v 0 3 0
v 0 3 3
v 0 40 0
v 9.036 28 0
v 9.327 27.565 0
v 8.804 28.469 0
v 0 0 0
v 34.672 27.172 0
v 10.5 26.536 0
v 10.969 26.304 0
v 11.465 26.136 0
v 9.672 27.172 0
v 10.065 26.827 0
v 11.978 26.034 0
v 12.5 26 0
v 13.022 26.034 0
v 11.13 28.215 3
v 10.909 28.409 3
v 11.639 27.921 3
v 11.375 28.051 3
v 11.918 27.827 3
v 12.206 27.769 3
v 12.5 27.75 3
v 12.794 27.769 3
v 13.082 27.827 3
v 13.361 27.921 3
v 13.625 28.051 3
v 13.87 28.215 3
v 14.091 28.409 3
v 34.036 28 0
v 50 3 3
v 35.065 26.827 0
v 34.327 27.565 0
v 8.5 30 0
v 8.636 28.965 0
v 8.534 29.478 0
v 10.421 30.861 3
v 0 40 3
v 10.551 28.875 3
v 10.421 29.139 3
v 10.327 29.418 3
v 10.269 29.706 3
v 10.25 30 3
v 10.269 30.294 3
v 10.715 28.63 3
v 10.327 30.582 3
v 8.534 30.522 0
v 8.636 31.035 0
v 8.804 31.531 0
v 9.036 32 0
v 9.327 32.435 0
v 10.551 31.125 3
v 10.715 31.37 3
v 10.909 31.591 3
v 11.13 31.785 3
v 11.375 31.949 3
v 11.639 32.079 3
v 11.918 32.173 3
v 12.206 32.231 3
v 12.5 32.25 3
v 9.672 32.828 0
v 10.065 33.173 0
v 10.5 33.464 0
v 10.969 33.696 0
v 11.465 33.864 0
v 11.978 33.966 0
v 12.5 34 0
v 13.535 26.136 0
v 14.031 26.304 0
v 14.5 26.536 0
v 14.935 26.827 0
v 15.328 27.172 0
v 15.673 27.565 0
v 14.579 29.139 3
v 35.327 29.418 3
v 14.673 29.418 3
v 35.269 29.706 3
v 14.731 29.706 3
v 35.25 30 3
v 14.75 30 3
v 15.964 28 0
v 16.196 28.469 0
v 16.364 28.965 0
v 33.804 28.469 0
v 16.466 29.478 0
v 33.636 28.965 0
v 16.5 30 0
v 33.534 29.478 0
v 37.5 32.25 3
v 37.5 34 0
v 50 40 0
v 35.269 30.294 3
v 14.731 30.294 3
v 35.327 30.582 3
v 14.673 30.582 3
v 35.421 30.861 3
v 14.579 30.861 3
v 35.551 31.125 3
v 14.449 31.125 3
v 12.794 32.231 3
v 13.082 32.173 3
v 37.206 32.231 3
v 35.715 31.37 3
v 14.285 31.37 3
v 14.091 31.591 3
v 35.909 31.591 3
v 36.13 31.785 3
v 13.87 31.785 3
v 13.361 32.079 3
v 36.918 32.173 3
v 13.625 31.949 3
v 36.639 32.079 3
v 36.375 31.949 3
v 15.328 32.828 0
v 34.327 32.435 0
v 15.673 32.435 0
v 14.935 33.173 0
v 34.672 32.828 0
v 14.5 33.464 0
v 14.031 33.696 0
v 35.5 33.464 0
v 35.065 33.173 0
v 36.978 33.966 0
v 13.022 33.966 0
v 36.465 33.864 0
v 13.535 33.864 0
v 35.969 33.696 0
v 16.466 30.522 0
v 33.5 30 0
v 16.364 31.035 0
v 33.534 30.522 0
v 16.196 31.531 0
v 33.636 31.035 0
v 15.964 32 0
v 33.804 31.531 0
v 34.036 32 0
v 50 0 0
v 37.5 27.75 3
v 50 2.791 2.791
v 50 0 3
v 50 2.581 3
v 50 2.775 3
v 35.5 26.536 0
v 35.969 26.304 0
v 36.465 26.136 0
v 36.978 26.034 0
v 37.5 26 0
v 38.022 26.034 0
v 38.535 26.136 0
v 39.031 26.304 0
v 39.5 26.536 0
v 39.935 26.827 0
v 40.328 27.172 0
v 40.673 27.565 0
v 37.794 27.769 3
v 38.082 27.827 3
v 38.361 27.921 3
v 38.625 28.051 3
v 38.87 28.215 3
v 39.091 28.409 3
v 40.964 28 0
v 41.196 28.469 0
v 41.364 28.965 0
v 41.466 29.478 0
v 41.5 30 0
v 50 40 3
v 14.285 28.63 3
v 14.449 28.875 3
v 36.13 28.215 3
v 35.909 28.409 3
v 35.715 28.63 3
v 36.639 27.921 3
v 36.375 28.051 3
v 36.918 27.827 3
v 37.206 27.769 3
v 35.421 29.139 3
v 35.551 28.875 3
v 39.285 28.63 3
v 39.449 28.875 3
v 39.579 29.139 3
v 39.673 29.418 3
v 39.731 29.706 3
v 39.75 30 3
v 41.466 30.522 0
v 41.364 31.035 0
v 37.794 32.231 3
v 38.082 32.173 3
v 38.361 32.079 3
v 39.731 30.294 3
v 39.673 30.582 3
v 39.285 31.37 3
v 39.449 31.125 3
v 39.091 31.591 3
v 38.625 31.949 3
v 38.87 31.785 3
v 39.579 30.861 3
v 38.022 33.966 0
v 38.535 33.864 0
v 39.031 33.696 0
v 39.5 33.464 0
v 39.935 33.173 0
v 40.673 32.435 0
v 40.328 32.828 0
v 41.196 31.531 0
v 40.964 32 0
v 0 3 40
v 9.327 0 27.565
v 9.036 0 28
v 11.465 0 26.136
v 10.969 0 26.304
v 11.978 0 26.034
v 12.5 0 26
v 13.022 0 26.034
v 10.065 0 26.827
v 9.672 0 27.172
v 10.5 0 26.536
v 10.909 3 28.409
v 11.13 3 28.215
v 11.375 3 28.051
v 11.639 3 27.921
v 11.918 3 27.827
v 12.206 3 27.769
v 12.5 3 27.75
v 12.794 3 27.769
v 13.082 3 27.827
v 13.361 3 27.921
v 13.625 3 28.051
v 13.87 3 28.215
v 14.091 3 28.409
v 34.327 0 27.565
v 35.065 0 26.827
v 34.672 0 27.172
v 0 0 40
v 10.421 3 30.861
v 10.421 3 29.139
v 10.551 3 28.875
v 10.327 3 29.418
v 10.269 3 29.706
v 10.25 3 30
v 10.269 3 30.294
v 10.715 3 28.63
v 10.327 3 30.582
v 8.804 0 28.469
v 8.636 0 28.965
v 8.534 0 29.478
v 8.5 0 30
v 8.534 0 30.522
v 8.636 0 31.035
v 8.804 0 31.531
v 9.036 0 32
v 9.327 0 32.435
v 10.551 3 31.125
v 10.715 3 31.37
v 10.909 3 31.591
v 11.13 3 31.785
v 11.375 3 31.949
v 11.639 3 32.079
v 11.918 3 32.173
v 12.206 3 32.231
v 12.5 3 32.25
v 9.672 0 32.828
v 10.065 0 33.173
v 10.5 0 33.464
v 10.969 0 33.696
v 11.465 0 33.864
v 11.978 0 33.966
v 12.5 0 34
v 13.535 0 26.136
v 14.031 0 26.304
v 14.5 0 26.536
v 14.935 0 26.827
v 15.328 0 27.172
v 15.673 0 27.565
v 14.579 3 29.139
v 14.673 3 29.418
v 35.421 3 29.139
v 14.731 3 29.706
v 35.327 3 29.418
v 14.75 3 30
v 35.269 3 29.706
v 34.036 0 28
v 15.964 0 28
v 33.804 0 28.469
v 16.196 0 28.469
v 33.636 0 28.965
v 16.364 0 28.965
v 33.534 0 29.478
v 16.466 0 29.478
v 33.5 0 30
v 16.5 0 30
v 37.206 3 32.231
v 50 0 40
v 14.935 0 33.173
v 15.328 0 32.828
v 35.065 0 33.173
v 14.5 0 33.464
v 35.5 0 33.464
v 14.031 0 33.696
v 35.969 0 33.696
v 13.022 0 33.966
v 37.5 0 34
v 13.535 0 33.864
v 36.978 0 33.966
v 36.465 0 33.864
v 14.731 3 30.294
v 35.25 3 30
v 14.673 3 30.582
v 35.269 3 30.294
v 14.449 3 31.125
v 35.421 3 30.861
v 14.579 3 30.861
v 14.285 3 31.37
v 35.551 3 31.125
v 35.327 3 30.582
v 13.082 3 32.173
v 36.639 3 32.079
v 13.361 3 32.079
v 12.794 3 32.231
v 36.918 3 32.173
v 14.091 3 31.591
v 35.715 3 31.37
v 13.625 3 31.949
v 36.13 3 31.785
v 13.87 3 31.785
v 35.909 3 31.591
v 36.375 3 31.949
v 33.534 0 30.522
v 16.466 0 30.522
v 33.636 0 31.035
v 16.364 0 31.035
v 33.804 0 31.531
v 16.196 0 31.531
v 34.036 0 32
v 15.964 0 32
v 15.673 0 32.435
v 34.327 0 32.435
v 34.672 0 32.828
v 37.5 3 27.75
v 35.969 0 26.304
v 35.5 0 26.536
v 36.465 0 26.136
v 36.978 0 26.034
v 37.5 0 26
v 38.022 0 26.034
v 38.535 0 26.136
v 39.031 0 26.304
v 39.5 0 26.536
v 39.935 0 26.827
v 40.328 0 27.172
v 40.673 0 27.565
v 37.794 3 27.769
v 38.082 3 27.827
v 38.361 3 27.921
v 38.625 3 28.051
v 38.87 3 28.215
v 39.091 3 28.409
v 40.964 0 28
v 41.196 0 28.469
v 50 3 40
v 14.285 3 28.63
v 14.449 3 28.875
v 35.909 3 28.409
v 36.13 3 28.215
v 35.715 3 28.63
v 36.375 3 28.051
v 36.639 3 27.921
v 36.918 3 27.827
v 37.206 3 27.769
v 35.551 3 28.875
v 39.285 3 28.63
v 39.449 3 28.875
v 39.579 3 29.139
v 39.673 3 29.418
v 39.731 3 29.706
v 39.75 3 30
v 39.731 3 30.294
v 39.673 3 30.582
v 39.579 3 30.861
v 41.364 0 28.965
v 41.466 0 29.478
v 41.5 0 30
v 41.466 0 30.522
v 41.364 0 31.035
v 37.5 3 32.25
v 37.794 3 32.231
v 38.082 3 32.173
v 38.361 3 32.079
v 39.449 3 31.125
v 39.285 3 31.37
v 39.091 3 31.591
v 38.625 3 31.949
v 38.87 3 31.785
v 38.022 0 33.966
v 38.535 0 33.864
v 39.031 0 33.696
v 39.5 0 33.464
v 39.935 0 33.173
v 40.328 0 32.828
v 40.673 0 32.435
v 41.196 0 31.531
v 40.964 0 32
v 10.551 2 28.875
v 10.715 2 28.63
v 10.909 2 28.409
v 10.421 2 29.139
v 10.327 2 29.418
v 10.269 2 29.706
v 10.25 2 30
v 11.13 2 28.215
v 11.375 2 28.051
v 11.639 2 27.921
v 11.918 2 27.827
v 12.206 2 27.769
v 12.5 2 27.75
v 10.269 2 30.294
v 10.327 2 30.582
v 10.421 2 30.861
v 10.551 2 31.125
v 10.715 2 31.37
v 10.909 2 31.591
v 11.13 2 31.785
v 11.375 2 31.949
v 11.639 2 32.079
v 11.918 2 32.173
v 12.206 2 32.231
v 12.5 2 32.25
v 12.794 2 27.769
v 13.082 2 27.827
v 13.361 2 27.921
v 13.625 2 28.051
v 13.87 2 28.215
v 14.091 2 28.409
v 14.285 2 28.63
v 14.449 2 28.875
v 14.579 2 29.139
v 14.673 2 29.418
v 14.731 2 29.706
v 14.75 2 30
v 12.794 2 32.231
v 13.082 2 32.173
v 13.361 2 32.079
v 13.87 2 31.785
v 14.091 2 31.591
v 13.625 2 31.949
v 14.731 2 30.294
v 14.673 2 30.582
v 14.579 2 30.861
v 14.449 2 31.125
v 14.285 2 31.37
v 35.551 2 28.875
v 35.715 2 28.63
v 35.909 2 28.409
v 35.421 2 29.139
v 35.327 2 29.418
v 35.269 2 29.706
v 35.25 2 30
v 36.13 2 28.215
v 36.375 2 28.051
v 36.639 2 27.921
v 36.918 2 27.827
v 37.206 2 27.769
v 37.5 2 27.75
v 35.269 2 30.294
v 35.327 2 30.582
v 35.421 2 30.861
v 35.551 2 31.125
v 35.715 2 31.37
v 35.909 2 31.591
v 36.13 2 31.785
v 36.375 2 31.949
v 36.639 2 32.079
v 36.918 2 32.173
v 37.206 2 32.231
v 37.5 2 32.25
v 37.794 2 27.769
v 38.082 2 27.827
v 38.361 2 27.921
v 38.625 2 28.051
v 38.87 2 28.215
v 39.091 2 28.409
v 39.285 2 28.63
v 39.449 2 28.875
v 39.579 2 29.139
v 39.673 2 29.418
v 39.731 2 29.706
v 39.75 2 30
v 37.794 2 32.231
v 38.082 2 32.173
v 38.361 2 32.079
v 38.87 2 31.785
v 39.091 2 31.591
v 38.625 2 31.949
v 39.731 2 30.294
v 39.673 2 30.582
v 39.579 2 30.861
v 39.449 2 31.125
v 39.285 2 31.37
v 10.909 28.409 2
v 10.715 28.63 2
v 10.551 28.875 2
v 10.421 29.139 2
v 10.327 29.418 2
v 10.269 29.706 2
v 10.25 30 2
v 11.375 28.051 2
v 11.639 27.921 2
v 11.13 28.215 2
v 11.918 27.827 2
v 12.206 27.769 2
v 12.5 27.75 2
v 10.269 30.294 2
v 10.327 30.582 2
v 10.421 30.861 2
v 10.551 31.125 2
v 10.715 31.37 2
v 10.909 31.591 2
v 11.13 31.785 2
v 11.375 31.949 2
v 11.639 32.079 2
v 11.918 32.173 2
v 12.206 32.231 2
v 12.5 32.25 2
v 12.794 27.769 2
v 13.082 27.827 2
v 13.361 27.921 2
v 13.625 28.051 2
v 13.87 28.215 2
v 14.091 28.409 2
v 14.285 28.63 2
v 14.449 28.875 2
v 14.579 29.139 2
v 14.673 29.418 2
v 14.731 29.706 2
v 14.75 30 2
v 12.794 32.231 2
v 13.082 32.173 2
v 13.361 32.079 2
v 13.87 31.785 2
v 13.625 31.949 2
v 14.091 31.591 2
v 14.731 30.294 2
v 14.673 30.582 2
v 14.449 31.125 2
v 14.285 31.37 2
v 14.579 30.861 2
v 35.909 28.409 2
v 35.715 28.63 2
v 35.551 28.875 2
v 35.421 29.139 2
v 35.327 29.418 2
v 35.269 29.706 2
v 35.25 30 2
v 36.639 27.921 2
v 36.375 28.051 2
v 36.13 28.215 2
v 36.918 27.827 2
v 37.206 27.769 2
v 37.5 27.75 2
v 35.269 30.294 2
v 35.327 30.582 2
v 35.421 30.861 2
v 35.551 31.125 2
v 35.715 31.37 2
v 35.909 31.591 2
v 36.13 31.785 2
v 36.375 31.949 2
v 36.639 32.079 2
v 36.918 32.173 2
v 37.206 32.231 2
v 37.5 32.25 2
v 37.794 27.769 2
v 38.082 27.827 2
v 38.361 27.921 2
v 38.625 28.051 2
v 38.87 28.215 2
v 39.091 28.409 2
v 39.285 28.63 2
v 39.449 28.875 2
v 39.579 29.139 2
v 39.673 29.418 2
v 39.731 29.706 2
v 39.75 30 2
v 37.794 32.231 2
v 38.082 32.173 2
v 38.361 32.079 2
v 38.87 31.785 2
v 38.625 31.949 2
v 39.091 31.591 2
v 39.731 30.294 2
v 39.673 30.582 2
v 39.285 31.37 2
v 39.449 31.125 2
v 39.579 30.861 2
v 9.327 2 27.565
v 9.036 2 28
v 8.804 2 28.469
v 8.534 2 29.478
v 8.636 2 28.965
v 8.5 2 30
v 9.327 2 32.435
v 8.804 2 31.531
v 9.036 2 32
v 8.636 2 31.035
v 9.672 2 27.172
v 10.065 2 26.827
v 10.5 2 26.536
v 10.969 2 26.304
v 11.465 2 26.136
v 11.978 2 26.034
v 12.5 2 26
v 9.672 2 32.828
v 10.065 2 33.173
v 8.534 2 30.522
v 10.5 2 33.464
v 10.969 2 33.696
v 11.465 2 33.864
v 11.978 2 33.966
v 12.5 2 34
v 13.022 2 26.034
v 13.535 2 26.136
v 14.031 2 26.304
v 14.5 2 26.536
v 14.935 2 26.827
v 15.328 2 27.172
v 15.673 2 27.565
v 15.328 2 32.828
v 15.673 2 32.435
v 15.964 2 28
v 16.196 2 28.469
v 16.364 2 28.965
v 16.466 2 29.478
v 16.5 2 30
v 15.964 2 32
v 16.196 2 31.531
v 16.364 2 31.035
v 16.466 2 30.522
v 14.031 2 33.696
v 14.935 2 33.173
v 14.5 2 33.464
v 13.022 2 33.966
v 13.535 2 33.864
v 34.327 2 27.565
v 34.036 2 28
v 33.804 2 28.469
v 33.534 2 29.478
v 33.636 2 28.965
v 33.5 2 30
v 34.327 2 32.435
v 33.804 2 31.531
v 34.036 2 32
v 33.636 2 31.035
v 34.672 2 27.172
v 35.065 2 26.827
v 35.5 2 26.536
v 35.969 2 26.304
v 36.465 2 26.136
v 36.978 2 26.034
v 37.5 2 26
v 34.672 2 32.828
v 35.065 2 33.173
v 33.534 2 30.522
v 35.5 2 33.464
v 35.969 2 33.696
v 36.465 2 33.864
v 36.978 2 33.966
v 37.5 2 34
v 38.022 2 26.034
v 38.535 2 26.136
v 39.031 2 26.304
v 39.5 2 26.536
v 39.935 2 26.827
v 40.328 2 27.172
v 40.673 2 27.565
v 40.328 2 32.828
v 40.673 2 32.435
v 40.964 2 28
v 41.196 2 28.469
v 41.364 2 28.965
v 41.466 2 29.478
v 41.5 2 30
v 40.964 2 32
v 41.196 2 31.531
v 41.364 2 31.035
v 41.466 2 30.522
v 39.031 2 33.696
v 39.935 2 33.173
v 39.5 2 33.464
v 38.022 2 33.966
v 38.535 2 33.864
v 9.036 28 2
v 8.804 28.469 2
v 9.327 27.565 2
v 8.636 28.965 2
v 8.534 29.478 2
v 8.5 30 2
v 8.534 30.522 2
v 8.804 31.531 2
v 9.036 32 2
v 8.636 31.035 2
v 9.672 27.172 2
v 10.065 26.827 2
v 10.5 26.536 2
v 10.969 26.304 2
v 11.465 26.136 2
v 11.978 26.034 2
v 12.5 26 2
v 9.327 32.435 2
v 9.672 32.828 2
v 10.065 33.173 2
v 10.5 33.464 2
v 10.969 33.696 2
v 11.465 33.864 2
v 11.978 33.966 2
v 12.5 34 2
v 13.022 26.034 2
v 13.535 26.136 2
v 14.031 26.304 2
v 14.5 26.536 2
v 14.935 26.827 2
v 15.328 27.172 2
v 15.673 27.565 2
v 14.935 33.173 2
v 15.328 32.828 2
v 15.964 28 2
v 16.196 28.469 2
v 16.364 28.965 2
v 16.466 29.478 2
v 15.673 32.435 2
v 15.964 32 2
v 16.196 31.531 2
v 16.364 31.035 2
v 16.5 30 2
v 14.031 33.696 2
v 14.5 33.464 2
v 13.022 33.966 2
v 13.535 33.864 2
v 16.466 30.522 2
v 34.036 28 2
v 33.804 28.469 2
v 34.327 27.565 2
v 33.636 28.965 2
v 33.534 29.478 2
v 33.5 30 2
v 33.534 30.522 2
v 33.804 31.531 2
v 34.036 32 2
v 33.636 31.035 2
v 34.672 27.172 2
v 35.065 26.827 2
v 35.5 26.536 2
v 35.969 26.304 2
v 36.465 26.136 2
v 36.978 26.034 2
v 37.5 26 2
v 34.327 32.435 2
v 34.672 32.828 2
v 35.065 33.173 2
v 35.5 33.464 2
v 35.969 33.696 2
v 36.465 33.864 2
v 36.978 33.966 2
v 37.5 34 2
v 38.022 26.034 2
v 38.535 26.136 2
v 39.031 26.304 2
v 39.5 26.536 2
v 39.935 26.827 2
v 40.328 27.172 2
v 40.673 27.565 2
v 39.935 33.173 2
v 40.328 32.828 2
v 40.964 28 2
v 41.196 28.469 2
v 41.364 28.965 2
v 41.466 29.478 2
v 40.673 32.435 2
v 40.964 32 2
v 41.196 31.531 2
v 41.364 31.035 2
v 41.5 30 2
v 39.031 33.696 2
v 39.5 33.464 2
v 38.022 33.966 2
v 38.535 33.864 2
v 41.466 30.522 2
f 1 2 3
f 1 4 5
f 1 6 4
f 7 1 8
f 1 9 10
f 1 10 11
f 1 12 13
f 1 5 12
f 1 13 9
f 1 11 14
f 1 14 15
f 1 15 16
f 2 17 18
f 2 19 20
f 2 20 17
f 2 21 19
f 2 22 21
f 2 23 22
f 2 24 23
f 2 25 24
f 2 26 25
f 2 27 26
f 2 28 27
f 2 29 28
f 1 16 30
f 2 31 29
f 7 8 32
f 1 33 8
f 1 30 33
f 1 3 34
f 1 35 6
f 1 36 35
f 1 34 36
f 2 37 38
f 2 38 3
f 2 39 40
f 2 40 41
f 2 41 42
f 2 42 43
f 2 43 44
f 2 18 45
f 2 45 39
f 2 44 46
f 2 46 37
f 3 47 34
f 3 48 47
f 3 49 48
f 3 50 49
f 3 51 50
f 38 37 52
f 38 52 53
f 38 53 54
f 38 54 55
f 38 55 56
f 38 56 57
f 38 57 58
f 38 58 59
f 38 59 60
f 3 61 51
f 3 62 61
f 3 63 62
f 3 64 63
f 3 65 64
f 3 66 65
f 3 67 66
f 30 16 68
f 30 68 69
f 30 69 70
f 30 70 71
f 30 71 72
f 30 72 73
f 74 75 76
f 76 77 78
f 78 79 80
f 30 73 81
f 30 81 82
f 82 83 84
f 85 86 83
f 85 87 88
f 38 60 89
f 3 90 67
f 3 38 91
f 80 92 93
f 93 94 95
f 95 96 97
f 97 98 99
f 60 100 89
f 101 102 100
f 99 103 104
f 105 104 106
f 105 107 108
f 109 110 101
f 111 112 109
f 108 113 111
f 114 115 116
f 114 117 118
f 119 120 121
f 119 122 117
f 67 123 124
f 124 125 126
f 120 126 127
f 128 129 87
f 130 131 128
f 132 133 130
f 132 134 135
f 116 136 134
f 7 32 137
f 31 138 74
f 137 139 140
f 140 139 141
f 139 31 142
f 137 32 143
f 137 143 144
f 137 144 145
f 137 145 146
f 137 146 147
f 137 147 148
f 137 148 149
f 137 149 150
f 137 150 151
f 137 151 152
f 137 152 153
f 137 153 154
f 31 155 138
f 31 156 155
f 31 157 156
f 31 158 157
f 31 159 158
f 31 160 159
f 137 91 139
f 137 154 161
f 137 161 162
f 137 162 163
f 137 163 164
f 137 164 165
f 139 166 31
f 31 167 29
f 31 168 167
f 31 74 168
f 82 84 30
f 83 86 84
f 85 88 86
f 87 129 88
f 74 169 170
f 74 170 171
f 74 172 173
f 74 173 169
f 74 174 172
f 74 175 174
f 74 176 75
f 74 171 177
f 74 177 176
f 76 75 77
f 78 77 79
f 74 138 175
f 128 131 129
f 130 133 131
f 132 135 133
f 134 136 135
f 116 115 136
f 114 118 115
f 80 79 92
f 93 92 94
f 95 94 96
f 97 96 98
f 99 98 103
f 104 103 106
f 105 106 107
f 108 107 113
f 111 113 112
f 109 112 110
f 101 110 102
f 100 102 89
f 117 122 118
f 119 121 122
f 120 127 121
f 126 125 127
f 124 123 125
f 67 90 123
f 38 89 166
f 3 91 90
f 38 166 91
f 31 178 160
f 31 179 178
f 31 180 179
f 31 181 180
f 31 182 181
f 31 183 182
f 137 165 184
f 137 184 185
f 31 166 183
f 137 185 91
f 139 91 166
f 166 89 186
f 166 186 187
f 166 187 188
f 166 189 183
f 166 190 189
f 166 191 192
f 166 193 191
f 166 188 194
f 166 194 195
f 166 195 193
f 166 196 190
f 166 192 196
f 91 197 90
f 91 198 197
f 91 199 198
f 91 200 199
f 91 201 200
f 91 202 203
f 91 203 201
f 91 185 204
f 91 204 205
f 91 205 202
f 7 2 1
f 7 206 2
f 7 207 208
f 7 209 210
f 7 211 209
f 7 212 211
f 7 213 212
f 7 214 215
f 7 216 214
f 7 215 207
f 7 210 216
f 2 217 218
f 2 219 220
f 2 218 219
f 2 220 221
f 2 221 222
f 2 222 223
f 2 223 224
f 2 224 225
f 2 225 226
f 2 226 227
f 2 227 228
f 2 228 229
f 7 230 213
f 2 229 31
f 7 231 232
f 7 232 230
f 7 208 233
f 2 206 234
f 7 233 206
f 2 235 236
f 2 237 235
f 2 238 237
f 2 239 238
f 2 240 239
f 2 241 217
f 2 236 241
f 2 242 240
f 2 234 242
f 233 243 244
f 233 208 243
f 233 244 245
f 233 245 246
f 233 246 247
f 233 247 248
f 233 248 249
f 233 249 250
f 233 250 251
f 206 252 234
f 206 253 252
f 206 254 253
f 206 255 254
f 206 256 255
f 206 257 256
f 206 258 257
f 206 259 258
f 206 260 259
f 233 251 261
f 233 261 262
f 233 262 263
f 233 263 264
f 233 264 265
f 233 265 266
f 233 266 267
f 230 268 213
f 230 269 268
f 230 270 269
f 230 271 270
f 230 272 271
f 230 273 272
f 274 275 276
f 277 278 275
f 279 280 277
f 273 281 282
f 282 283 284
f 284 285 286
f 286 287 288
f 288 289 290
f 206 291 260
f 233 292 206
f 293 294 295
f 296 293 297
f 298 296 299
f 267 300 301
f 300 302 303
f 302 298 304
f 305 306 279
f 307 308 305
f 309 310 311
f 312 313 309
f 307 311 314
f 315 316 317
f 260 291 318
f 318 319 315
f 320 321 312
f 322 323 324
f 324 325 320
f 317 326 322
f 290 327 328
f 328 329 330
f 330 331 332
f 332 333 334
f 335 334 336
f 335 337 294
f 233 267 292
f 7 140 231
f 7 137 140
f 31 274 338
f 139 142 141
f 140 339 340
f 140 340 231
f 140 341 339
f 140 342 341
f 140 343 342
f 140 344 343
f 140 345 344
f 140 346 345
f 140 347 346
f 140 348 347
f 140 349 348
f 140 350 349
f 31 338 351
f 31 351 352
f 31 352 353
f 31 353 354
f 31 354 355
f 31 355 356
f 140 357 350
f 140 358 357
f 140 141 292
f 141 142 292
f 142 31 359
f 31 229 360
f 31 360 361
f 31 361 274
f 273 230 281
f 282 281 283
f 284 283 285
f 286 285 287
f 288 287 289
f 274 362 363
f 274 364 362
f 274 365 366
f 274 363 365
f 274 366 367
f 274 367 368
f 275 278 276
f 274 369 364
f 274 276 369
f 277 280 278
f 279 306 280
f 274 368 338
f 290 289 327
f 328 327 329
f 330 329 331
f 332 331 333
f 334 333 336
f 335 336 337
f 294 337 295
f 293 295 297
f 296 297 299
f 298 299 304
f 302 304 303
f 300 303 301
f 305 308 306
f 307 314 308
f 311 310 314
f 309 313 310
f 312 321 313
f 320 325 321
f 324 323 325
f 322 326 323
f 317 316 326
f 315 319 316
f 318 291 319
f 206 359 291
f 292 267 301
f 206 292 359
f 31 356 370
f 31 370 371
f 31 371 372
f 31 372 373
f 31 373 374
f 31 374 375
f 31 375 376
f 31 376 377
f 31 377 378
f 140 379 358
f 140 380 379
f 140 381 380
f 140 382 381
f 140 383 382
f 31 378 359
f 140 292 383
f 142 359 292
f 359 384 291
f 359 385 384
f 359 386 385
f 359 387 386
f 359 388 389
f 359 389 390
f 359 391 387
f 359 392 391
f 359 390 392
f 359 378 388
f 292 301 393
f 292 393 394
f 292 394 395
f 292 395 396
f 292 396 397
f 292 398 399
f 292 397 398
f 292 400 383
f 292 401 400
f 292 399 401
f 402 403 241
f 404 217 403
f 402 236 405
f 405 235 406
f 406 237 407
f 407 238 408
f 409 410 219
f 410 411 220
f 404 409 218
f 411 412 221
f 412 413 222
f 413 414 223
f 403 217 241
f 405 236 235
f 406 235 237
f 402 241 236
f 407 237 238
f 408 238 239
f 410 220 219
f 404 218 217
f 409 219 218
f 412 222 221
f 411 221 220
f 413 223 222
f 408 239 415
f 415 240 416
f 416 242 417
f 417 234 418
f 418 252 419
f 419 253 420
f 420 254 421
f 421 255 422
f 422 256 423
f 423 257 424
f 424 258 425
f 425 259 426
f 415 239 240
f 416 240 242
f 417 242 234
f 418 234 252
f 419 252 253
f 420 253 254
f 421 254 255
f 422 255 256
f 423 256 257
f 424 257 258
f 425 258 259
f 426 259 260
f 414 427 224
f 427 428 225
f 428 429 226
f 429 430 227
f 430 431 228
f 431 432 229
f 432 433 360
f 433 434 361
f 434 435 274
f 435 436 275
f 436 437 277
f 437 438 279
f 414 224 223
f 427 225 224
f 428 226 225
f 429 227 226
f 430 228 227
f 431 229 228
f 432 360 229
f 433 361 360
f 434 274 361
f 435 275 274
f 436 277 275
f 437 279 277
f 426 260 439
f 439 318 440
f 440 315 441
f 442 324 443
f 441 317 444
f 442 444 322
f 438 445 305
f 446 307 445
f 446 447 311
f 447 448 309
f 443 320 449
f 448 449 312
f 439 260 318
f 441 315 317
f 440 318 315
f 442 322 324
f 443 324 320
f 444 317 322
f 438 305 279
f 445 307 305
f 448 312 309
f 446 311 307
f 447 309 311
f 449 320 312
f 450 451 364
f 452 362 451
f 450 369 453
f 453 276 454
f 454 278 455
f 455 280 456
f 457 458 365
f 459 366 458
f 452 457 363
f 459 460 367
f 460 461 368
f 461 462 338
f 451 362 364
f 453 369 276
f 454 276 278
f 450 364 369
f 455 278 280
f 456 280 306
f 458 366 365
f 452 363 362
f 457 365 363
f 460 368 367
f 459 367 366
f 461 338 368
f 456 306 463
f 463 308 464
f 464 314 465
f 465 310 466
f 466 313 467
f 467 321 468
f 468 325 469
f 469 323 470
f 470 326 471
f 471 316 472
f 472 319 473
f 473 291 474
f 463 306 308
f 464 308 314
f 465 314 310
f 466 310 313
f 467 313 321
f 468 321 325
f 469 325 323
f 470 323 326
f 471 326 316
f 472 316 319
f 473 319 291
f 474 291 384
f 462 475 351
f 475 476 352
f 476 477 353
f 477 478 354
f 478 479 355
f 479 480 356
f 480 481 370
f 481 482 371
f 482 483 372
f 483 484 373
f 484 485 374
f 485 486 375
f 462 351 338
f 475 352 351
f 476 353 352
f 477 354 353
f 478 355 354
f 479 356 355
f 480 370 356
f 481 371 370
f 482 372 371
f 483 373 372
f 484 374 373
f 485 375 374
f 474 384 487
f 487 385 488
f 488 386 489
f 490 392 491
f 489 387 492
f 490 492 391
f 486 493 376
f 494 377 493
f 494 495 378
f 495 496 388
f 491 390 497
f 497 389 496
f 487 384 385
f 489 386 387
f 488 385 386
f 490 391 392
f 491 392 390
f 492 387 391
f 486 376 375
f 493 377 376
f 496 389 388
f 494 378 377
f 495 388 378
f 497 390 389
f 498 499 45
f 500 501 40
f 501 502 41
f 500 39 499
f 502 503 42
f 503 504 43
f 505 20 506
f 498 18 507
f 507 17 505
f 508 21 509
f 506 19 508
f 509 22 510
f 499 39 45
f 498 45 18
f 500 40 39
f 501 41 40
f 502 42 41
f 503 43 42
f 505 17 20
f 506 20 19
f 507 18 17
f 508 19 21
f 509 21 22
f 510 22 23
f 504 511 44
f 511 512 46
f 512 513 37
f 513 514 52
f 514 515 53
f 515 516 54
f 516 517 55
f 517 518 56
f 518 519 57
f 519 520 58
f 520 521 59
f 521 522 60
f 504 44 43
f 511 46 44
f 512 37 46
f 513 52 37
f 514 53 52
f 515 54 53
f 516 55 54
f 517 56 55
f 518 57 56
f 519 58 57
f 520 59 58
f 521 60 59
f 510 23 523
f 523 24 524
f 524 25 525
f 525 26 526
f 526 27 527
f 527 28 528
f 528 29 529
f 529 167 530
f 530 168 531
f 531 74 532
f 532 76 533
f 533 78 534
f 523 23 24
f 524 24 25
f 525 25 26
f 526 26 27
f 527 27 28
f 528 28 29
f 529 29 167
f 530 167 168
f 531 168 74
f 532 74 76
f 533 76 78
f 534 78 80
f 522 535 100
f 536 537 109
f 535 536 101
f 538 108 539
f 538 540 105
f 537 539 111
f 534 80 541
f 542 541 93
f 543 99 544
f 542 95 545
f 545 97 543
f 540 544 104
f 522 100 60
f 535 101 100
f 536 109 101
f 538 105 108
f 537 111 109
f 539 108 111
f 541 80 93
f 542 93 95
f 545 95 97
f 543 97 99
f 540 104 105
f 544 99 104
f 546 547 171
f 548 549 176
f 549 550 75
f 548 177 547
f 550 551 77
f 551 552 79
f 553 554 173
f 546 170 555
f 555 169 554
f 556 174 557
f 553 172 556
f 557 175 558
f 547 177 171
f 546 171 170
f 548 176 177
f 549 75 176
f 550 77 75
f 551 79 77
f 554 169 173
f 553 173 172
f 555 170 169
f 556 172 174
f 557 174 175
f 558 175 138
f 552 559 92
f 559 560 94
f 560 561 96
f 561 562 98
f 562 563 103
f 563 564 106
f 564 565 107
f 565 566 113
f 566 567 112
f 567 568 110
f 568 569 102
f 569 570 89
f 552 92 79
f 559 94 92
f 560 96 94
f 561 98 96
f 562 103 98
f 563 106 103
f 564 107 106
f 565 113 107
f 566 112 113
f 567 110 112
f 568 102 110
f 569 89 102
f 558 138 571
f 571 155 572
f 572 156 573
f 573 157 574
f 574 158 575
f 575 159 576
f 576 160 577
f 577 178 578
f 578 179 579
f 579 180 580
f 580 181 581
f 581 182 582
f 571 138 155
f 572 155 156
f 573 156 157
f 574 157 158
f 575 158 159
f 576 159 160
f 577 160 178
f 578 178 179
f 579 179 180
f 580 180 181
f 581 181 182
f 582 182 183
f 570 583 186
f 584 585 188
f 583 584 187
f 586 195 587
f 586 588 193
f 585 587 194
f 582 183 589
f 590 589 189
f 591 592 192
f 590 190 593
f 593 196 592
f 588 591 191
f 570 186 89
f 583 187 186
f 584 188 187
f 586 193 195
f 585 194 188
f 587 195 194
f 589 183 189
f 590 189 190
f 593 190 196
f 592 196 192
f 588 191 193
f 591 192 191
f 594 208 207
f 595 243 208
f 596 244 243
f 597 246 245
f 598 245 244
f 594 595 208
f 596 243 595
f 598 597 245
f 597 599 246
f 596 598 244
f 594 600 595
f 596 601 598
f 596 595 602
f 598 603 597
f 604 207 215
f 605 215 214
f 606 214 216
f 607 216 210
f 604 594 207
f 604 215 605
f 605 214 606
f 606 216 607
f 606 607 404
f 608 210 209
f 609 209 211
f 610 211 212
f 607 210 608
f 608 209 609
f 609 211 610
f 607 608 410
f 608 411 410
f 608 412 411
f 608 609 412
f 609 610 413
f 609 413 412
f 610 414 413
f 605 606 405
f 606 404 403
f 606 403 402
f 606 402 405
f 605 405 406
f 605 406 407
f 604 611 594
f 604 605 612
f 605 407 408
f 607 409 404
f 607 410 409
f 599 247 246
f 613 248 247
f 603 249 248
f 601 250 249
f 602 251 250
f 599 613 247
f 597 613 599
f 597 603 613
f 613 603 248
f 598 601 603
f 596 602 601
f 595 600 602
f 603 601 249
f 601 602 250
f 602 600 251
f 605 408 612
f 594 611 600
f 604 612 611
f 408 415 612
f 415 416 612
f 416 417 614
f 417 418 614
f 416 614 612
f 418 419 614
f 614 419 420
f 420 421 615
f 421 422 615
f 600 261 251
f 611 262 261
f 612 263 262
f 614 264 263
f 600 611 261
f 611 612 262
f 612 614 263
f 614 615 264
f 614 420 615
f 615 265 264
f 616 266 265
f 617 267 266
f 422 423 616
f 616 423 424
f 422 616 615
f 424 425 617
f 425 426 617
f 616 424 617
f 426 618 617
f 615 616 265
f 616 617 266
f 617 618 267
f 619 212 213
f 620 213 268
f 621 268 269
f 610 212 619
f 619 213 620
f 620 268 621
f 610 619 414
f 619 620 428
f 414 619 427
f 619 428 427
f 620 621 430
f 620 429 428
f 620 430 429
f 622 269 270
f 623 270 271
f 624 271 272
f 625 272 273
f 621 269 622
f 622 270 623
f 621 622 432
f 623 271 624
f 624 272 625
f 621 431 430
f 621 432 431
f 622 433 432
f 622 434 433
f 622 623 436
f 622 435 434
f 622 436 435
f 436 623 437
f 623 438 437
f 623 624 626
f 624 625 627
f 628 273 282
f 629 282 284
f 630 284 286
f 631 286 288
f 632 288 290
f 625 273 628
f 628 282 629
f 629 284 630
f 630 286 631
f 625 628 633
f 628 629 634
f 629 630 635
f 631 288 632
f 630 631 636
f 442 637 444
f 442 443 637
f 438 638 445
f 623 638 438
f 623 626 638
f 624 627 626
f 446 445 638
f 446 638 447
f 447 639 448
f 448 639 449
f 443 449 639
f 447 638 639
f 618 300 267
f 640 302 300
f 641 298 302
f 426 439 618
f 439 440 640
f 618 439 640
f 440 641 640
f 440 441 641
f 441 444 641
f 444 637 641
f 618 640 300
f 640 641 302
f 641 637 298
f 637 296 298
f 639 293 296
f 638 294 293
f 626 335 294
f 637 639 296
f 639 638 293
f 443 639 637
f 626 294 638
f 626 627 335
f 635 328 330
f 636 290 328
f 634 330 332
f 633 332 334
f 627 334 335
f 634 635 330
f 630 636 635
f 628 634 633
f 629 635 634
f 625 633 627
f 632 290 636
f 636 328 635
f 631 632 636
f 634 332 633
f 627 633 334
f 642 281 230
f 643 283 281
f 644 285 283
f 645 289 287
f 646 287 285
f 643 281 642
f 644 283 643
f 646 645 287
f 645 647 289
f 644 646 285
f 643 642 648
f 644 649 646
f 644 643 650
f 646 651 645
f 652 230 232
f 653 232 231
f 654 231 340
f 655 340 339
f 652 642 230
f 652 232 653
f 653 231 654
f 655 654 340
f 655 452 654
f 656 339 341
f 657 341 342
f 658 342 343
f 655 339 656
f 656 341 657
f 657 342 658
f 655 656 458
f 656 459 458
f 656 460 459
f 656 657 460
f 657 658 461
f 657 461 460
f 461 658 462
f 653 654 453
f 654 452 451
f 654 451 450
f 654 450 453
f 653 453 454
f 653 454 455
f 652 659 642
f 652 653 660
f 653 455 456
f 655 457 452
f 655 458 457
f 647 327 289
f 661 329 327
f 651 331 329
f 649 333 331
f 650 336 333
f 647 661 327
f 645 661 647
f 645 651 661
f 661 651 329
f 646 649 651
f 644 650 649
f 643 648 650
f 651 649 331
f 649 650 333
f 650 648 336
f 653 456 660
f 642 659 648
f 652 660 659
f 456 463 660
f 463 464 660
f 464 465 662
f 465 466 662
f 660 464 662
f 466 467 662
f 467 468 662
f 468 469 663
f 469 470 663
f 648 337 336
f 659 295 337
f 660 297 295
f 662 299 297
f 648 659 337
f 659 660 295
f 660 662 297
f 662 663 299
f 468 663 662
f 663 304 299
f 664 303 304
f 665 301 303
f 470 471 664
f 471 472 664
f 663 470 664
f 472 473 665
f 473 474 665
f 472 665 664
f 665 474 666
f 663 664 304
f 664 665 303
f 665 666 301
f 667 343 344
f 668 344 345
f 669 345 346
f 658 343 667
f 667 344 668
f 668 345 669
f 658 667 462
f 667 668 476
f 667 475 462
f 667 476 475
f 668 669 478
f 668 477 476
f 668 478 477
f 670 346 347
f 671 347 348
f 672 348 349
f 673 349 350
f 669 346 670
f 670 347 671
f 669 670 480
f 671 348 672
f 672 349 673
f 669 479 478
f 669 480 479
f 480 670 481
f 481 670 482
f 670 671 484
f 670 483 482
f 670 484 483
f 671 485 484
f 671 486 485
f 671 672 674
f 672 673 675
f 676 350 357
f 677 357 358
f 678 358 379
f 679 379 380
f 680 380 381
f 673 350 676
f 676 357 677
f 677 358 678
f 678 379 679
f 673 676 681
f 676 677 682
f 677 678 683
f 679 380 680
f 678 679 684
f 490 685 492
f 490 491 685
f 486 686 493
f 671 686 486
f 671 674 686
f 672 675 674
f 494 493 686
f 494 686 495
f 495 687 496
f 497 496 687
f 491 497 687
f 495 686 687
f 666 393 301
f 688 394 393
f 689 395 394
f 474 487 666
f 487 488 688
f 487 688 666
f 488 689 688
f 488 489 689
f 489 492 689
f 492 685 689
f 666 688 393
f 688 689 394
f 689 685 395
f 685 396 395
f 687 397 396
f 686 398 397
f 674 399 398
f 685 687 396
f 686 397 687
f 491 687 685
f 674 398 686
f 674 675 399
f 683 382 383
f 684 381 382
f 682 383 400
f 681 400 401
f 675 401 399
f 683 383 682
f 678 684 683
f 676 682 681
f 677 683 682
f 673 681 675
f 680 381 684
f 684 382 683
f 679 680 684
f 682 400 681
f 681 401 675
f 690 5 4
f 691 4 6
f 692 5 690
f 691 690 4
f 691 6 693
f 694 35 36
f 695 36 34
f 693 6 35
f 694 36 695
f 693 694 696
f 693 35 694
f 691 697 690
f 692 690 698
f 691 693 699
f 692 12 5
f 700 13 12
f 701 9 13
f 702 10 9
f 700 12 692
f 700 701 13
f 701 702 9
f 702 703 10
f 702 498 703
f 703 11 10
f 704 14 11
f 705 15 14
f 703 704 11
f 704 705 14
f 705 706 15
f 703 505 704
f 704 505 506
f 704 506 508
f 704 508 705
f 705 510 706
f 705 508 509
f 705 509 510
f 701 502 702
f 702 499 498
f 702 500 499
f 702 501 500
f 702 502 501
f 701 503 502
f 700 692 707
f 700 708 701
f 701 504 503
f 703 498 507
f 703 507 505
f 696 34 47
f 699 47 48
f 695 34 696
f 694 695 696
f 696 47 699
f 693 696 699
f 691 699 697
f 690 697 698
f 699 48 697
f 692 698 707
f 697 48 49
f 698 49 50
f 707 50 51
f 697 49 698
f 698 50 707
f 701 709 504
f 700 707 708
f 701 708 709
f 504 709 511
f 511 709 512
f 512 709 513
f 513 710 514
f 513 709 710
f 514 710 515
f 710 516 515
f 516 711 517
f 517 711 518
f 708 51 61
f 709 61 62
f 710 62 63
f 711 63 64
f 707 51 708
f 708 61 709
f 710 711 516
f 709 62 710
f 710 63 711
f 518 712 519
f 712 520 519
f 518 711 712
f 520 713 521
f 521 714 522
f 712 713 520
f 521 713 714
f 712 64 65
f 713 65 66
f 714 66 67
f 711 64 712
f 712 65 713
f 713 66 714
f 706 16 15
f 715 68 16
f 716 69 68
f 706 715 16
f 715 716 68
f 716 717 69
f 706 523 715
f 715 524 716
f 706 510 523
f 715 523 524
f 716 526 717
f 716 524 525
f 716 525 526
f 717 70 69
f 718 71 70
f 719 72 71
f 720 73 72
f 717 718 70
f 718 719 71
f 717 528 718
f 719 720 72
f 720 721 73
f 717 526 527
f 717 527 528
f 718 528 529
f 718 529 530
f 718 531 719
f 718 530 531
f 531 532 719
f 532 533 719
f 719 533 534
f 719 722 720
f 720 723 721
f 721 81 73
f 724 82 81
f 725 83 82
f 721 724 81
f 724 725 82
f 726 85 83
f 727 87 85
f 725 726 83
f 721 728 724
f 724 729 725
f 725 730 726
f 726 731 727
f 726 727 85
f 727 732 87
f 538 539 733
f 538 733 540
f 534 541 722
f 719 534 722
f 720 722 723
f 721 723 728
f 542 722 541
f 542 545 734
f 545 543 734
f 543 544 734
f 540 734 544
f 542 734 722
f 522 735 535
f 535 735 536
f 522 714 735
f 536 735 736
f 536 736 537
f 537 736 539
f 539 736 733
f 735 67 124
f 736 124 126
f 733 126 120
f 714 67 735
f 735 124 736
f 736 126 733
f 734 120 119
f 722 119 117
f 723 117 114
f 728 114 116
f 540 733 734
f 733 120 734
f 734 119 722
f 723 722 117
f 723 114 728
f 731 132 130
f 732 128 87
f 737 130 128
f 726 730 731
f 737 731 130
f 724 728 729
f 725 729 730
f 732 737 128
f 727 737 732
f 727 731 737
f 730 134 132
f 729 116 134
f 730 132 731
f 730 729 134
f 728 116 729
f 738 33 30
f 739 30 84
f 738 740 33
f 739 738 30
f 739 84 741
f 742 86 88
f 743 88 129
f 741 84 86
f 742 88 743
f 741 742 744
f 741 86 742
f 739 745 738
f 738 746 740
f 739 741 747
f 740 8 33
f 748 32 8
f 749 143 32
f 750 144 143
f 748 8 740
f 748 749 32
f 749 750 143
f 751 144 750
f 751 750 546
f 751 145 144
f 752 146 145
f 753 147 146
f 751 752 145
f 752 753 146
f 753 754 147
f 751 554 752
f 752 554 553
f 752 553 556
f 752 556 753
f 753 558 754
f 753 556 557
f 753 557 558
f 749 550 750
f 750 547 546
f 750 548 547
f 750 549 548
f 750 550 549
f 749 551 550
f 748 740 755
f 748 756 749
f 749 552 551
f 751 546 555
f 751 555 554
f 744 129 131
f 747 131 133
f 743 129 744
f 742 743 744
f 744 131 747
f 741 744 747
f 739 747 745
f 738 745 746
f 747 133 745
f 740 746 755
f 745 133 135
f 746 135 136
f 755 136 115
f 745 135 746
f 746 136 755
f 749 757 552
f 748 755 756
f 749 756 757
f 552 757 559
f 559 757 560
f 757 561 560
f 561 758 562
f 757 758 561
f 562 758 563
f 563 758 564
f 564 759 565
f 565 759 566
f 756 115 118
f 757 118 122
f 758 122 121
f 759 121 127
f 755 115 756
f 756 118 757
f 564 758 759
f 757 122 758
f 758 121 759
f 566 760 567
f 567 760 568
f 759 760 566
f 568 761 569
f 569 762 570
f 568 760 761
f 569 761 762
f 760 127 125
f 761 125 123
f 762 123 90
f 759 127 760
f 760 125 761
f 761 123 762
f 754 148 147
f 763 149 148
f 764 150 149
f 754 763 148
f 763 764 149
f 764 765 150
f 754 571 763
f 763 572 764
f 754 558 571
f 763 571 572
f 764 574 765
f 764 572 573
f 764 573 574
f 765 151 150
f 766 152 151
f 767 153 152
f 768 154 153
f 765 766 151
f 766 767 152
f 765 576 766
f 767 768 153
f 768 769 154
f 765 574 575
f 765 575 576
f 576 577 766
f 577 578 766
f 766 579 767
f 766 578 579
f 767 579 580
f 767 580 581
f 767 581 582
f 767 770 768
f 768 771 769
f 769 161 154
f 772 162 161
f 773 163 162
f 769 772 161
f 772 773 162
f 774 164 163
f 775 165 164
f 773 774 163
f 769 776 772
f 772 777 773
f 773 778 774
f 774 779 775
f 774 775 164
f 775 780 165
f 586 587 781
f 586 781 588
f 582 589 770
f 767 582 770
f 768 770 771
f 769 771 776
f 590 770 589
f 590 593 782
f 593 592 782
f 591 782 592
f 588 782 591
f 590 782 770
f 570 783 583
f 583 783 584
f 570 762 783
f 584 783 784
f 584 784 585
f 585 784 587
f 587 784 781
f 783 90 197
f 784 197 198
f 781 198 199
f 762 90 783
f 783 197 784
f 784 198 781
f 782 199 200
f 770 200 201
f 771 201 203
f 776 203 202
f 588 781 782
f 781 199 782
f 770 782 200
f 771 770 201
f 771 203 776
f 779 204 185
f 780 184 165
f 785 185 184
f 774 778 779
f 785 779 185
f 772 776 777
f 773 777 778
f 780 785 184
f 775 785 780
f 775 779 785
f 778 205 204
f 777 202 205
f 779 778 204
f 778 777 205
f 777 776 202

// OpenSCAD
// L-bracket with countersunk holes

// パラメータ
width      = 50;   // 幅 (X方向)
depth      = 40;   // 水平面の奥行き / 垂直面の高さ
thickness  = 3;    // 板厚

hole_d     = 4.5;  // 貫通穴径 M4
cs_d       = 8;    // 皿座面径
cs_depth   = 2;    // 皿座面深さ
edge_off   = 10;   // 面の縁からの距離

// 穴中心のX座標（左右対称）
x1 = width/2 - 12.5;
x2 = width/2 + 12.5;

// 皿穴モジュール（Z軸方向に貫通、上面側に皿座）
// 座面は -Z 側へ向く（穴は下から上へ貫通、上面が外側）
module countersunk_hole(plate_thickness) {
    // 貫通穴
    translate([0, 0, -1])
        cylinder(h = plate_thickness + 2, d = hole_d, $fn = 48);
    // 皿座面（上面=外側）
    translate([0, 0, plate_thickness - cs_depth])
        cylinder(h = cs_depth + 1, d = cs_d, $fn = 48);
}

module l_bracket() {
    difference() {
        union() {
            // 水平面 (+Y方向に伸びる)
            cube([width, depth, thickness]);
            // 垂直面 (+Z方向に伸びる)
            cube([width, thickness, depth]);
        }

        // --- 水平面の皿穴 (外側 = -Z 側) ---
        // Y位置: 縁(Y=depth)から10mm内側 -> Y = depth - 10
        for (x = [x1, x2]) {
            translate([x, depth - edge_off, 0])
                rotate([180, 0, 0])
                    translate([0, 0, -thickness])
                        countersunk_hole(thickness);
        }

        // --- 垂直面の皿穴 (外側 = -Y 側) ---
        // Z位置: 縁(Z=depth)から10mm内側 -> Z = depth - 10
        for (x = [x1, x2]) {
            translate([x, thickness, depth - edge_off])
                rotate([90, 0, 0])
                    countersunk_hole(thickness);
        }
    }
}

l_bracket();
